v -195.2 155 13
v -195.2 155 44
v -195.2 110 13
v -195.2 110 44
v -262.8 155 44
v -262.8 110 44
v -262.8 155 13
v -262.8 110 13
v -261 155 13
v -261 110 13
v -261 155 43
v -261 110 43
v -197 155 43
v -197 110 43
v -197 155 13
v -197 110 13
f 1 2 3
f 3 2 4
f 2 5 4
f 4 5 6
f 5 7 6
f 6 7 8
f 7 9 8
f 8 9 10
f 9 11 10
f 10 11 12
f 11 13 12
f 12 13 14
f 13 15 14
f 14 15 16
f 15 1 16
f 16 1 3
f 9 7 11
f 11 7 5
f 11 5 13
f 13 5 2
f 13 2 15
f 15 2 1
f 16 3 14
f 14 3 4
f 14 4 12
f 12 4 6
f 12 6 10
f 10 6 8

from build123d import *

# Parameters (mm, degrees)
BOSS_EXTRUDE1_DEPTH = 45


with BuildPart() as part:
    # Sketch1 → Boss-Extrude1 (new body)
    with BuildSketch(Plane.XZ.offset(-155)):
        Polygon((-195.2, 13), (-197, 13), (-197, 43), (-261, 43), (-261, 13), (-262.8, 13), (-262.8, 44), (-195.2, 44), align=None)
    extrude(amount=BOSS_EXTRUDE1_DEPTH)


solid = part.part
